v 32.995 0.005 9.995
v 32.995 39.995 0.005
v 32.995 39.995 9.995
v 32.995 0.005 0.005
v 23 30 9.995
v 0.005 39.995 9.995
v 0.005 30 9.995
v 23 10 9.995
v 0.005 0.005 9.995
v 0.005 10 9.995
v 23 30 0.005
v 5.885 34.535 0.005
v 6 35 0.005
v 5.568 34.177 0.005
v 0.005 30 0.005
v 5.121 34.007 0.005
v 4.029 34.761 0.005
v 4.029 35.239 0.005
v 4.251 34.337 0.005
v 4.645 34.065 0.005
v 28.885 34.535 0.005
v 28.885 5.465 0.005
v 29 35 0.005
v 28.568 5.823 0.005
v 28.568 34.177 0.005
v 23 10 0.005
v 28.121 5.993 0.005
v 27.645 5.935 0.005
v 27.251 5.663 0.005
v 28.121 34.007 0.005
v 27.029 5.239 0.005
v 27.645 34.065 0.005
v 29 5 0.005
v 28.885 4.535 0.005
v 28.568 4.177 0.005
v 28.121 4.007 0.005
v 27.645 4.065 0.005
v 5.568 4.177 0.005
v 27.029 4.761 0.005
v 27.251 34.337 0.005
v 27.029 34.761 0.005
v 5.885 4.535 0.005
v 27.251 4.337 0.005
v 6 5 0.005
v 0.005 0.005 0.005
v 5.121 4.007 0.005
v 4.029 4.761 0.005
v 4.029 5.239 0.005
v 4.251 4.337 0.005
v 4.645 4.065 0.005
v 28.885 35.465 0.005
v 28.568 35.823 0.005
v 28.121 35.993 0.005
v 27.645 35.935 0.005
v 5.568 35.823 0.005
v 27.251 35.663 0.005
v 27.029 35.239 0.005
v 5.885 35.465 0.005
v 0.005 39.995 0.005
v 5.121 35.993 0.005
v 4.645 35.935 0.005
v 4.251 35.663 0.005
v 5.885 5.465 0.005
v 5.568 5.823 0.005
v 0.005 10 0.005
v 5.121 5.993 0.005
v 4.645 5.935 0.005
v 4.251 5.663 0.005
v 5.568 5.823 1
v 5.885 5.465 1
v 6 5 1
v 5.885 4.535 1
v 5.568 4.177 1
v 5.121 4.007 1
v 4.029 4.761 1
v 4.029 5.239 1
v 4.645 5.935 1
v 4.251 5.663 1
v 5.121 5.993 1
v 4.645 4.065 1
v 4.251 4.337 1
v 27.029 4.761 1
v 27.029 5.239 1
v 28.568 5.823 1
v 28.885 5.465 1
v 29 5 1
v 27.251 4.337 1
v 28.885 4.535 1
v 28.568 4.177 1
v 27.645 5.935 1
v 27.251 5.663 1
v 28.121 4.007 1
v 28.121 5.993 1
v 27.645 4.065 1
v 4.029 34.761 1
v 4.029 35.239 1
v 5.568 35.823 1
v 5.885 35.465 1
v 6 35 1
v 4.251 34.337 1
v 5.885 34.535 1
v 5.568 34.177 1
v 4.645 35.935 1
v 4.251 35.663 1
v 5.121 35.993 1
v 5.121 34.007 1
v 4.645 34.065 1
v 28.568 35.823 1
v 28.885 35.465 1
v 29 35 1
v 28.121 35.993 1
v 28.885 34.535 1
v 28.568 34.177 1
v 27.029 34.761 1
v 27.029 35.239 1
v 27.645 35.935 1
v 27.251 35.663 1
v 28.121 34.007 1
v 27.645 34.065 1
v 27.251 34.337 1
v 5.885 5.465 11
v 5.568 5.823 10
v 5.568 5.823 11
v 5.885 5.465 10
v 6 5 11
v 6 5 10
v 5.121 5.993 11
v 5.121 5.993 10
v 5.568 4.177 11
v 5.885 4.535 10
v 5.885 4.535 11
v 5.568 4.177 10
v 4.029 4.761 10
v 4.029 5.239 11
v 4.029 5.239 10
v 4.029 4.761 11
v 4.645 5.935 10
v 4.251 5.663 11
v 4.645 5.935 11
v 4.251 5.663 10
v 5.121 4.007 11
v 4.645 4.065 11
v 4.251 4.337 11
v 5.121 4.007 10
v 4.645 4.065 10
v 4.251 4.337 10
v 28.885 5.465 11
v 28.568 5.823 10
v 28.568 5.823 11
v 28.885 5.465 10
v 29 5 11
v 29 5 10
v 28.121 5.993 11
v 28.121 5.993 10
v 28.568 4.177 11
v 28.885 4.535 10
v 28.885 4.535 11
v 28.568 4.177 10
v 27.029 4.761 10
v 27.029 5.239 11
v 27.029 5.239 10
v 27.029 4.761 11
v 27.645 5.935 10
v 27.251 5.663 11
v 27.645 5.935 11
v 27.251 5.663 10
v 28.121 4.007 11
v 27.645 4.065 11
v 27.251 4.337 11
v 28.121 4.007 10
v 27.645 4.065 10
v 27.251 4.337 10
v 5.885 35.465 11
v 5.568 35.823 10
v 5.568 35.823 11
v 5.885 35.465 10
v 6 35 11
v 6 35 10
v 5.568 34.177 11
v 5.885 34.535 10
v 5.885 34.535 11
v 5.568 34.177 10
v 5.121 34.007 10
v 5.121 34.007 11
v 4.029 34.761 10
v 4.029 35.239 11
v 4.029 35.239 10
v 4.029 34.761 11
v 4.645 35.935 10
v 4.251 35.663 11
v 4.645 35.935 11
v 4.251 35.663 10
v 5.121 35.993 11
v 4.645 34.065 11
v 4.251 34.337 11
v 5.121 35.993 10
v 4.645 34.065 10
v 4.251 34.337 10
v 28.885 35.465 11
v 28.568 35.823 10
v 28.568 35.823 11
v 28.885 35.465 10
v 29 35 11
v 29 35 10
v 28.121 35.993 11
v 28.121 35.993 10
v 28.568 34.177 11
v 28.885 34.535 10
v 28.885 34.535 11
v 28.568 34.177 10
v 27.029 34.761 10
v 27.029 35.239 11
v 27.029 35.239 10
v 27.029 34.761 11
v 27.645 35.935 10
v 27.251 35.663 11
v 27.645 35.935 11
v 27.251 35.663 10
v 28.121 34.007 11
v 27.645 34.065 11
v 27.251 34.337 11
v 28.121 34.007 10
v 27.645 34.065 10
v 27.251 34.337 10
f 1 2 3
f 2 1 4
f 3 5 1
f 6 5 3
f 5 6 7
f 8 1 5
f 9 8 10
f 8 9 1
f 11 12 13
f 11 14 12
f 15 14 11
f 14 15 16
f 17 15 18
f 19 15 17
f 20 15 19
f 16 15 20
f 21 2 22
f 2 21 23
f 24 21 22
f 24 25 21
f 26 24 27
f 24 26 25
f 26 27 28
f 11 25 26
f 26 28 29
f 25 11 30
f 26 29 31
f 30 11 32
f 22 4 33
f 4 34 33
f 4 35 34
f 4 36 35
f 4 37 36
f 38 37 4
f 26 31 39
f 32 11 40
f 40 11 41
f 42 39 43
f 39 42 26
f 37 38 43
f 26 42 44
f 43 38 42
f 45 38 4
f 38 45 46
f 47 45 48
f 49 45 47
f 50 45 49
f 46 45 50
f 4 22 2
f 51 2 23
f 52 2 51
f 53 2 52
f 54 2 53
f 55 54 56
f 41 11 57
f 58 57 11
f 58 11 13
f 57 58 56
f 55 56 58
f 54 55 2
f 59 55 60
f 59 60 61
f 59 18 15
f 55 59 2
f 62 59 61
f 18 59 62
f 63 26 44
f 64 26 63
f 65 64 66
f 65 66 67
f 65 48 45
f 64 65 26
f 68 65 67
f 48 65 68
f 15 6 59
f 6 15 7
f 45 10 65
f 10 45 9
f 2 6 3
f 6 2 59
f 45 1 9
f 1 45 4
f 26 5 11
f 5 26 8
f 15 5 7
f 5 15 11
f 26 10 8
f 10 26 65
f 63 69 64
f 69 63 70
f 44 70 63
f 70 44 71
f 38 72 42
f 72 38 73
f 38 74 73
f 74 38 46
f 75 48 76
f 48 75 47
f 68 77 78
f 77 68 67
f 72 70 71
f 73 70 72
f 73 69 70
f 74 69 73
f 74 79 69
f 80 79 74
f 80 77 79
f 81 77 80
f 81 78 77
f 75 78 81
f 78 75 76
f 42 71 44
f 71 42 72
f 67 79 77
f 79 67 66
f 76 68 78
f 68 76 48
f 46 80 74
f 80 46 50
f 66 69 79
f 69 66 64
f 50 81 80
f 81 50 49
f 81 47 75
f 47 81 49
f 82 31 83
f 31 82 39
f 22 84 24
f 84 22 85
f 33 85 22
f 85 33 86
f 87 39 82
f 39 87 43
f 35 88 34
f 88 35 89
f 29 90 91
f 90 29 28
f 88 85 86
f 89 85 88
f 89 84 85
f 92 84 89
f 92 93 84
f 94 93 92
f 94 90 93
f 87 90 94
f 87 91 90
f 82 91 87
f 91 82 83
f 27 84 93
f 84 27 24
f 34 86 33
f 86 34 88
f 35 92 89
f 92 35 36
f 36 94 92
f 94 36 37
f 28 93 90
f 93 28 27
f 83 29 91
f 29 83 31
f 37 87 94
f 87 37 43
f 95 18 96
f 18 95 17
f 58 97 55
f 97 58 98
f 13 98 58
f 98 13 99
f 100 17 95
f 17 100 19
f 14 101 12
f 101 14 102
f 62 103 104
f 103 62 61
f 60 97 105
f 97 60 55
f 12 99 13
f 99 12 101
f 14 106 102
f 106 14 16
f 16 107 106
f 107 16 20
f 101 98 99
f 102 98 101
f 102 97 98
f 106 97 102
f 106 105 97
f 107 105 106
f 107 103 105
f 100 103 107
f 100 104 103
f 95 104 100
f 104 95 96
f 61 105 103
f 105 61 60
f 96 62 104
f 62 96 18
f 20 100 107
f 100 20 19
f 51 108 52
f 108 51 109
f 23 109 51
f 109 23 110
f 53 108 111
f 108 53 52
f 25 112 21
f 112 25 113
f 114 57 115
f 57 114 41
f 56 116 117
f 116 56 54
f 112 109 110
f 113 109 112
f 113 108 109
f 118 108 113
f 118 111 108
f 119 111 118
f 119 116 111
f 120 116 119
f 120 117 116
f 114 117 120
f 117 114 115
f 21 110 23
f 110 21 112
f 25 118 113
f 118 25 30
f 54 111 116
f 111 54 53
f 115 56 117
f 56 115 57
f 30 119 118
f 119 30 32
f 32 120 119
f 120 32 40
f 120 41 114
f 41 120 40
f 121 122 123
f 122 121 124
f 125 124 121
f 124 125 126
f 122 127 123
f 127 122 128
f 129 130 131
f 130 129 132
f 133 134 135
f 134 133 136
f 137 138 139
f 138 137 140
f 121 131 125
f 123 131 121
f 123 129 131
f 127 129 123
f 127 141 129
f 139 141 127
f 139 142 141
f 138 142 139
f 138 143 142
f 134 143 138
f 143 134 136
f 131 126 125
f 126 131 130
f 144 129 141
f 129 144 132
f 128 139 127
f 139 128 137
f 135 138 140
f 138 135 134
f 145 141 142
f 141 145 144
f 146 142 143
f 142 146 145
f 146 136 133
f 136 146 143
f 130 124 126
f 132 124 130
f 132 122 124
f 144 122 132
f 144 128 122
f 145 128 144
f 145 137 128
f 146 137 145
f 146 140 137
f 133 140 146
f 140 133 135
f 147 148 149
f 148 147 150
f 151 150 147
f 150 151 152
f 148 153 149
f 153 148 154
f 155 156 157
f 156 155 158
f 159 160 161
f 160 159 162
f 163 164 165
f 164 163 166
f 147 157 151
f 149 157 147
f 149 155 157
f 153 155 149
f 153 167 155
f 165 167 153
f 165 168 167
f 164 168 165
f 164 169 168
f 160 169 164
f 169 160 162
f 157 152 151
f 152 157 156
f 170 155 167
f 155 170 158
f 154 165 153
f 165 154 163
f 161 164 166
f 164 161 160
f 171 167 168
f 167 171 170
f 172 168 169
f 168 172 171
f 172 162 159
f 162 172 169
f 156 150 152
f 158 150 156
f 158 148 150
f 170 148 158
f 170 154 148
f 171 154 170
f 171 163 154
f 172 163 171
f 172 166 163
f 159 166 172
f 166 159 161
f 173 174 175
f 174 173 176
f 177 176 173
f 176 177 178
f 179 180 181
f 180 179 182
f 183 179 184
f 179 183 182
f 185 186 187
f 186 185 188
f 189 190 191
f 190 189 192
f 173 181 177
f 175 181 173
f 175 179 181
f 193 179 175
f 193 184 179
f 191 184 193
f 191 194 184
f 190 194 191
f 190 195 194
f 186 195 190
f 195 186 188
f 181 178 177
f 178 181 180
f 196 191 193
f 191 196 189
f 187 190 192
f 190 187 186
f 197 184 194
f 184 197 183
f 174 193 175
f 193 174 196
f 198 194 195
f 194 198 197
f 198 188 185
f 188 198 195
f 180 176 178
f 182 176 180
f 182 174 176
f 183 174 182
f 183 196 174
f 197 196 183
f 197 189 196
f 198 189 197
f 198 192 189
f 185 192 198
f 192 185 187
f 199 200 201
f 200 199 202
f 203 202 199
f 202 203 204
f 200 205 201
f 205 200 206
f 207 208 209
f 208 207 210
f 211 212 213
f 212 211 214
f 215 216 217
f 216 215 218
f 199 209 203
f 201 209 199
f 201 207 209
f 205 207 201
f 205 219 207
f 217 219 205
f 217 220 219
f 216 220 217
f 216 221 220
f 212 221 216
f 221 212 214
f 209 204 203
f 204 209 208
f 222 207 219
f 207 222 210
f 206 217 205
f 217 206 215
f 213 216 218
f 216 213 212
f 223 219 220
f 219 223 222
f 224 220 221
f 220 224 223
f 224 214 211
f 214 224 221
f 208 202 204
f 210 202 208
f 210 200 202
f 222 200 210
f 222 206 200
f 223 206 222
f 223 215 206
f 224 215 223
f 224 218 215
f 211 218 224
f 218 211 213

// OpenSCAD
//Spacer for sample holder. Can be used to elevate sample holder, which increases the magniciation of the sample. Useful for smaller crystals. Can also be stacked.  
// Doug Juers 2025.
//
// Can be printed without supports.
//
$fa=1;
$fs=.5;
spacer_length=60-(17+10);
spacer_width=40;
spacer_height=10;
hole_radius=5;
post_radius=4;
post_height=5;
tolerance=0.01;
union(){
difference(){
    translate([tolerance/2,tolerance/2,tolerance/2])cube([spacer_length-tolerance,spacer_width-tolerance,spacer_height-tolerance]);
    translate([0,10,0,])cube([spacer_length-10,spacer_width-20,spacer_height]);// Remove central block
    //Make holes on bottom
    translate([5,5,0])cylinder([post_radius+1,post_height+1]);
    translate([spacer_length-5,5,0])cylinder([post_radius+1,post_height+1]);
    translate([5,spacer_width-5,0])cylinder([post_radius+1,post_height+1]);
    translate([spacer_length-5,spacer_width-5,0])cylinder([post_radius+1,post_height+1]);  
}  
    //Make posts on top
    translate([5,5,spacer_height])cylinder([post_radius,post_height]);
    translate([spacer_length-5,5,spacer_height])cylinder([post_radius,post_height]);
    translate([5,spacer_width-5,spacer_height])cylinder([post_radius,post_height]);
    translate([spacer_length-5,spacer_width-5,spacer_height])cylinder([post_radius,post_height]);
}
